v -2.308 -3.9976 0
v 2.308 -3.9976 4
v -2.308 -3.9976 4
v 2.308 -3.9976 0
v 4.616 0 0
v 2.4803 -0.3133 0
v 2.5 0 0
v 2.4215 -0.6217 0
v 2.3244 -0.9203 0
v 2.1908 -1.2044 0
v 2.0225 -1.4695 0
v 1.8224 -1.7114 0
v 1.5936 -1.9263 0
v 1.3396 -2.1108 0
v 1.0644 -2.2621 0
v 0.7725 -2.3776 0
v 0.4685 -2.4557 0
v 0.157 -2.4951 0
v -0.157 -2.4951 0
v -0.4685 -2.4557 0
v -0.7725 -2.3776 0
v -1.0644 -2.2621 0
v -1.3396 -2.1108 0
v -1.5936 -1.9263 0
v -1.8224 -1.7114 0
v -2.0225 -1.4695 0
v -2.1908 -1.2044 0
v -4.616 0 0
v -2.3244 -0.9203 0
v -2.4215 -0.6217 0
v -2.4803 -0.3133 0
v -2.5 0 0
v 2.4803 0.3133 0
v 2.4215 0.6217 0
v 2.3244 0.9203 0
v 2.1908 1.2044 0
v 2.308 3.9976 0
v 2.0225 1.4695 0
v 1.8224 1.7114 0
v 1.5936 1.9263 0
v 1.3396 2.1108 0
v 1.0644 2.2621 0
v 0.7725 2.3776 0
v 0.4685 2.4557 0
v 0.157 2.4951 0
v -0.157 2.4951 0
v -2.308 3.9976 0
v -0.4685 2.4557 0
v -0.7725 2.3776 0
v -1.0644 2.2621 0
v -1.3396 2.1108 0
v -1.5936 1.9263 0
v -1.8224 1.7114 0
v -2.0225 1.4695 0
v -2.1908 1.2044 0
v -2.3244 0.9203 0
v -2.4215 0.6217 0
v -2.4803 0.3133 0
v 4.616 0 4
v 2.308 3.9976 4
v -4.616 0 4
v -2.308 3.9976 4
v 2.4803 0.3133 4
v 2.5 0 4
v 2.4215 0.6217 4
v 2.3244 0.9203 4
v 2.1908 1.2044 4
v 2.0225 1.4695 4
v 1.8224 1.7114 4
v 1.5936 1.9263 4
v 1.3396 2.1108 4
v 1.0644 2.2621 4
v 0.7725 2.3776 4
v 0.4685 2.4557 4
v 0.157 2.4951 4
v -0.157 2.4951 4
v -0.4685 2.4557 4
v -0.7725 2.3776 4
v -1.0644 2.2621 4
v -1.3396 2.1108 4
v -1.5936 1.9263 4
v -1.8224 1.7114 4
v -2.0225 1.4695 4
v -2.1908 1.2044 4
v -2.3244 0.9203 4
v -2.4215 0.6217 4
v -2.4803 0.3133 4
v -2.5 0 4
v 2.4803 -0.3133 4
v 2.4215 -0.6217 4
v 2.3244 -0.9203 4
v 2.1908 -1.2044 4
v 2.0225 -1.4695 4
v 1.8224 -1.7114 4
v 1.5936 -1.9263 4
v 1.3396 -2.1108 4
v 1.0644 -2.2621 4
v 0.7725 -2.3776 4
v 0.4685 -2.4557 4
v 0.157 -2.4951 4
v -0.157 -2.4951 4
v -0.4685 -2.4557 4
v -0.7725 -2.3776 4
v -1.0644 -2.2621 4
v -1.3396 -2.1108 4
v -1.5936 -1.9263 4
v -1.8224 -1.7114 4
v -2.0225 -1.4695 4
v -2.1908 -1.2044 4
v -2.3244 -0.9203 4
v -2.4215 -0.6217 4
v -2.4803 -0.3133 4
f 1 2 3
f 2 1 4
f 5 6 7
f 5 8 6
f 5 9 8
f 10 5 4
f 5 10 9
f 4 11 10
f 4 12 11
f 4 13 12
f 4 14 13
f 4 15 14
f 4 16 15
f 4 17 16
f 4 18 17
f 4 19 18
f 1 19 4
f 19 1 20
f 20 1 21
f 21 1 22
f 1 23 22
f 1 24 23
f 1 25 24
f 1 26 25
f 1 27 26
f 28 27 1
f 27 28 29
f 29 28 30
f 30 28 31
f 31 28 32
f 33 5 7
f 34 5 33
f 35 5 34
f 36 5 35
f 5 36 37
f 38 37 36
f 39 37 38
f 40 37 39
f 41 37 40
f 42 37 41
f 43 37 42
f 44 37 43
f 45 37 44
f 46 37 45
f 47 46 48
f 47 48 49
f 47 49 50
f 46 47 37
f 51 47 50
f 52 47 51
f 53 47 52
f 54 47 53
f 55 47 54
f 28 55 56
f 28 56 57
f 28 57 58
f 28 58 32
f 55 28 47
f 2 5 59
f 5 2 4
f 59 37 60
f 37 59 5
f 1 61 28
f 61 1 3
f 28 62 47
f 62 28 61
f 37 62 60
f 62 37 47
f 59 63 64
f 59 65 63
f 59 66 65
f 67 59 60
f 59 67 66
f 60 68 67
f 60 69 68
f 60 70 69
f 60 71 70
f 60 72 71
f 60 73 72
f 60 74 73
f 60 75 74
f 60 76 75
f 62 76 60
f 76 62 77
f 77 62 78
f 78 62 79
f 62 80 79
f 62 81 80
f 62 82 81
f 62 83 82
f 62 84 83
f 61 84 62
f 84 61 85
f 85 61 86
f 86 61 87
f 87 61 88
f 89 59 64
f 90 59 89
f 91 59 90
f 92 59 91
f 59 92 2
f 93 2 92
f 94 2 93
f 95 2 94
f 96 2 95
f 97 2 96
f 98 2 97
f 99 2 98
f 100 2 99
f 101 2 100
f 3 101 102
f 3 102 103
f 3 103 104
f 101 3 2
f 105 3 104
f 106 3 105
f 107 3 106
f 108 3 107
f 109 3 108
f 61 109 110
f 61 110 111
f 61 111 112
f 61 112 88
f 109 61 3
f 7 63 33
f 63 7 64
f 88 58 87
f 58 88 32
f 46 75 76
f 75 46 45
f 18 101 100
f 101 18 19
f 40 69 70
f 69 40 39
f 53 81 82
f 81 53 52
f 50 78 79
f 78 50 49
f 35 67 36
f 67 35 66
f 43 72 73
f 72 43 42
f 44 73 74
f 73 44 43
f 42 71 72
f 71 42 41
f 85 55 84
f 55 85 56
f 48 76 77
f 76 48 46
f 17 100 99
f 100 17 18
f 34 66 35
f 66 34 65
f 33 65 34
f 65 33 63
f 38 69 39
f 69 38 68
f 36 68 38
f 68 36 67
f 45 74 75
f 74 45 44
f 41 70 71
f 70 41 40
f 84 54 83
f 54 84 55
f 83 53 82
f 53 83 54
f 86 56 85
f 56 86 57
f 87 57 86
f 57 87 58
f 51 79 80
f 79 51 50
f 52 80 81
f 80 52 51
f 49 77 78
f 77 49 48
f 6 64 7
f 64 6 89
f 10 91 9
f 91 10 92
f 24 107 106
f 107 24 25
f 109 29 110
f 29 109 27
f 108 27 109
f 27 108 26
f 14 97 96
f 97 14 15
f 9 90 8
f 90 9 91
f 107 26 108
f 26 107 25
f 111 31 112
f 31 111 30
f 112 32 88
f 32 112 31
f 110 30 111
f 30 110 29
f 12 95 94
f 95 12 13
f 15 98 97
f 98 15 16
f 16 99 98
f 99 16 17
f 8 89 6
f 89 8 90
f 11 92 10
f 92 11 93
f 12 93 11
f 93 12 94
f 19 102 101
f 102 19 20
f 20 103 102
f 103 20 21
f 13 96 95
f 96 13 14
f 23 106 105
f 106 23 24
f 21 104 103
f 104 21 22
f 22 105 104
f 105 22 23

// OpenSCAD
$fn = 50;


difference() {
	union() {
		translate(v = [0, 0, 0]) {
			rotate(a = [0, 0, 0]) {
				difference() {
					union() {
						linear_extrude(height = 4) {
							polygon(points = [[4.6160000000, 0.0000000000], [2.3080000000, 3.9975732639], [-2.3080000000, 3.9975732639], [-4.6160000000, 0.0000000000], [-2.3080000000, -3.9975732639], [2.3080000000, -3.9975732639]]);
						}
					}
					union();
				}
			}
		}
	}
	union() {
		cylinder(h = 100, r = 2.5000000000);
	}
}
